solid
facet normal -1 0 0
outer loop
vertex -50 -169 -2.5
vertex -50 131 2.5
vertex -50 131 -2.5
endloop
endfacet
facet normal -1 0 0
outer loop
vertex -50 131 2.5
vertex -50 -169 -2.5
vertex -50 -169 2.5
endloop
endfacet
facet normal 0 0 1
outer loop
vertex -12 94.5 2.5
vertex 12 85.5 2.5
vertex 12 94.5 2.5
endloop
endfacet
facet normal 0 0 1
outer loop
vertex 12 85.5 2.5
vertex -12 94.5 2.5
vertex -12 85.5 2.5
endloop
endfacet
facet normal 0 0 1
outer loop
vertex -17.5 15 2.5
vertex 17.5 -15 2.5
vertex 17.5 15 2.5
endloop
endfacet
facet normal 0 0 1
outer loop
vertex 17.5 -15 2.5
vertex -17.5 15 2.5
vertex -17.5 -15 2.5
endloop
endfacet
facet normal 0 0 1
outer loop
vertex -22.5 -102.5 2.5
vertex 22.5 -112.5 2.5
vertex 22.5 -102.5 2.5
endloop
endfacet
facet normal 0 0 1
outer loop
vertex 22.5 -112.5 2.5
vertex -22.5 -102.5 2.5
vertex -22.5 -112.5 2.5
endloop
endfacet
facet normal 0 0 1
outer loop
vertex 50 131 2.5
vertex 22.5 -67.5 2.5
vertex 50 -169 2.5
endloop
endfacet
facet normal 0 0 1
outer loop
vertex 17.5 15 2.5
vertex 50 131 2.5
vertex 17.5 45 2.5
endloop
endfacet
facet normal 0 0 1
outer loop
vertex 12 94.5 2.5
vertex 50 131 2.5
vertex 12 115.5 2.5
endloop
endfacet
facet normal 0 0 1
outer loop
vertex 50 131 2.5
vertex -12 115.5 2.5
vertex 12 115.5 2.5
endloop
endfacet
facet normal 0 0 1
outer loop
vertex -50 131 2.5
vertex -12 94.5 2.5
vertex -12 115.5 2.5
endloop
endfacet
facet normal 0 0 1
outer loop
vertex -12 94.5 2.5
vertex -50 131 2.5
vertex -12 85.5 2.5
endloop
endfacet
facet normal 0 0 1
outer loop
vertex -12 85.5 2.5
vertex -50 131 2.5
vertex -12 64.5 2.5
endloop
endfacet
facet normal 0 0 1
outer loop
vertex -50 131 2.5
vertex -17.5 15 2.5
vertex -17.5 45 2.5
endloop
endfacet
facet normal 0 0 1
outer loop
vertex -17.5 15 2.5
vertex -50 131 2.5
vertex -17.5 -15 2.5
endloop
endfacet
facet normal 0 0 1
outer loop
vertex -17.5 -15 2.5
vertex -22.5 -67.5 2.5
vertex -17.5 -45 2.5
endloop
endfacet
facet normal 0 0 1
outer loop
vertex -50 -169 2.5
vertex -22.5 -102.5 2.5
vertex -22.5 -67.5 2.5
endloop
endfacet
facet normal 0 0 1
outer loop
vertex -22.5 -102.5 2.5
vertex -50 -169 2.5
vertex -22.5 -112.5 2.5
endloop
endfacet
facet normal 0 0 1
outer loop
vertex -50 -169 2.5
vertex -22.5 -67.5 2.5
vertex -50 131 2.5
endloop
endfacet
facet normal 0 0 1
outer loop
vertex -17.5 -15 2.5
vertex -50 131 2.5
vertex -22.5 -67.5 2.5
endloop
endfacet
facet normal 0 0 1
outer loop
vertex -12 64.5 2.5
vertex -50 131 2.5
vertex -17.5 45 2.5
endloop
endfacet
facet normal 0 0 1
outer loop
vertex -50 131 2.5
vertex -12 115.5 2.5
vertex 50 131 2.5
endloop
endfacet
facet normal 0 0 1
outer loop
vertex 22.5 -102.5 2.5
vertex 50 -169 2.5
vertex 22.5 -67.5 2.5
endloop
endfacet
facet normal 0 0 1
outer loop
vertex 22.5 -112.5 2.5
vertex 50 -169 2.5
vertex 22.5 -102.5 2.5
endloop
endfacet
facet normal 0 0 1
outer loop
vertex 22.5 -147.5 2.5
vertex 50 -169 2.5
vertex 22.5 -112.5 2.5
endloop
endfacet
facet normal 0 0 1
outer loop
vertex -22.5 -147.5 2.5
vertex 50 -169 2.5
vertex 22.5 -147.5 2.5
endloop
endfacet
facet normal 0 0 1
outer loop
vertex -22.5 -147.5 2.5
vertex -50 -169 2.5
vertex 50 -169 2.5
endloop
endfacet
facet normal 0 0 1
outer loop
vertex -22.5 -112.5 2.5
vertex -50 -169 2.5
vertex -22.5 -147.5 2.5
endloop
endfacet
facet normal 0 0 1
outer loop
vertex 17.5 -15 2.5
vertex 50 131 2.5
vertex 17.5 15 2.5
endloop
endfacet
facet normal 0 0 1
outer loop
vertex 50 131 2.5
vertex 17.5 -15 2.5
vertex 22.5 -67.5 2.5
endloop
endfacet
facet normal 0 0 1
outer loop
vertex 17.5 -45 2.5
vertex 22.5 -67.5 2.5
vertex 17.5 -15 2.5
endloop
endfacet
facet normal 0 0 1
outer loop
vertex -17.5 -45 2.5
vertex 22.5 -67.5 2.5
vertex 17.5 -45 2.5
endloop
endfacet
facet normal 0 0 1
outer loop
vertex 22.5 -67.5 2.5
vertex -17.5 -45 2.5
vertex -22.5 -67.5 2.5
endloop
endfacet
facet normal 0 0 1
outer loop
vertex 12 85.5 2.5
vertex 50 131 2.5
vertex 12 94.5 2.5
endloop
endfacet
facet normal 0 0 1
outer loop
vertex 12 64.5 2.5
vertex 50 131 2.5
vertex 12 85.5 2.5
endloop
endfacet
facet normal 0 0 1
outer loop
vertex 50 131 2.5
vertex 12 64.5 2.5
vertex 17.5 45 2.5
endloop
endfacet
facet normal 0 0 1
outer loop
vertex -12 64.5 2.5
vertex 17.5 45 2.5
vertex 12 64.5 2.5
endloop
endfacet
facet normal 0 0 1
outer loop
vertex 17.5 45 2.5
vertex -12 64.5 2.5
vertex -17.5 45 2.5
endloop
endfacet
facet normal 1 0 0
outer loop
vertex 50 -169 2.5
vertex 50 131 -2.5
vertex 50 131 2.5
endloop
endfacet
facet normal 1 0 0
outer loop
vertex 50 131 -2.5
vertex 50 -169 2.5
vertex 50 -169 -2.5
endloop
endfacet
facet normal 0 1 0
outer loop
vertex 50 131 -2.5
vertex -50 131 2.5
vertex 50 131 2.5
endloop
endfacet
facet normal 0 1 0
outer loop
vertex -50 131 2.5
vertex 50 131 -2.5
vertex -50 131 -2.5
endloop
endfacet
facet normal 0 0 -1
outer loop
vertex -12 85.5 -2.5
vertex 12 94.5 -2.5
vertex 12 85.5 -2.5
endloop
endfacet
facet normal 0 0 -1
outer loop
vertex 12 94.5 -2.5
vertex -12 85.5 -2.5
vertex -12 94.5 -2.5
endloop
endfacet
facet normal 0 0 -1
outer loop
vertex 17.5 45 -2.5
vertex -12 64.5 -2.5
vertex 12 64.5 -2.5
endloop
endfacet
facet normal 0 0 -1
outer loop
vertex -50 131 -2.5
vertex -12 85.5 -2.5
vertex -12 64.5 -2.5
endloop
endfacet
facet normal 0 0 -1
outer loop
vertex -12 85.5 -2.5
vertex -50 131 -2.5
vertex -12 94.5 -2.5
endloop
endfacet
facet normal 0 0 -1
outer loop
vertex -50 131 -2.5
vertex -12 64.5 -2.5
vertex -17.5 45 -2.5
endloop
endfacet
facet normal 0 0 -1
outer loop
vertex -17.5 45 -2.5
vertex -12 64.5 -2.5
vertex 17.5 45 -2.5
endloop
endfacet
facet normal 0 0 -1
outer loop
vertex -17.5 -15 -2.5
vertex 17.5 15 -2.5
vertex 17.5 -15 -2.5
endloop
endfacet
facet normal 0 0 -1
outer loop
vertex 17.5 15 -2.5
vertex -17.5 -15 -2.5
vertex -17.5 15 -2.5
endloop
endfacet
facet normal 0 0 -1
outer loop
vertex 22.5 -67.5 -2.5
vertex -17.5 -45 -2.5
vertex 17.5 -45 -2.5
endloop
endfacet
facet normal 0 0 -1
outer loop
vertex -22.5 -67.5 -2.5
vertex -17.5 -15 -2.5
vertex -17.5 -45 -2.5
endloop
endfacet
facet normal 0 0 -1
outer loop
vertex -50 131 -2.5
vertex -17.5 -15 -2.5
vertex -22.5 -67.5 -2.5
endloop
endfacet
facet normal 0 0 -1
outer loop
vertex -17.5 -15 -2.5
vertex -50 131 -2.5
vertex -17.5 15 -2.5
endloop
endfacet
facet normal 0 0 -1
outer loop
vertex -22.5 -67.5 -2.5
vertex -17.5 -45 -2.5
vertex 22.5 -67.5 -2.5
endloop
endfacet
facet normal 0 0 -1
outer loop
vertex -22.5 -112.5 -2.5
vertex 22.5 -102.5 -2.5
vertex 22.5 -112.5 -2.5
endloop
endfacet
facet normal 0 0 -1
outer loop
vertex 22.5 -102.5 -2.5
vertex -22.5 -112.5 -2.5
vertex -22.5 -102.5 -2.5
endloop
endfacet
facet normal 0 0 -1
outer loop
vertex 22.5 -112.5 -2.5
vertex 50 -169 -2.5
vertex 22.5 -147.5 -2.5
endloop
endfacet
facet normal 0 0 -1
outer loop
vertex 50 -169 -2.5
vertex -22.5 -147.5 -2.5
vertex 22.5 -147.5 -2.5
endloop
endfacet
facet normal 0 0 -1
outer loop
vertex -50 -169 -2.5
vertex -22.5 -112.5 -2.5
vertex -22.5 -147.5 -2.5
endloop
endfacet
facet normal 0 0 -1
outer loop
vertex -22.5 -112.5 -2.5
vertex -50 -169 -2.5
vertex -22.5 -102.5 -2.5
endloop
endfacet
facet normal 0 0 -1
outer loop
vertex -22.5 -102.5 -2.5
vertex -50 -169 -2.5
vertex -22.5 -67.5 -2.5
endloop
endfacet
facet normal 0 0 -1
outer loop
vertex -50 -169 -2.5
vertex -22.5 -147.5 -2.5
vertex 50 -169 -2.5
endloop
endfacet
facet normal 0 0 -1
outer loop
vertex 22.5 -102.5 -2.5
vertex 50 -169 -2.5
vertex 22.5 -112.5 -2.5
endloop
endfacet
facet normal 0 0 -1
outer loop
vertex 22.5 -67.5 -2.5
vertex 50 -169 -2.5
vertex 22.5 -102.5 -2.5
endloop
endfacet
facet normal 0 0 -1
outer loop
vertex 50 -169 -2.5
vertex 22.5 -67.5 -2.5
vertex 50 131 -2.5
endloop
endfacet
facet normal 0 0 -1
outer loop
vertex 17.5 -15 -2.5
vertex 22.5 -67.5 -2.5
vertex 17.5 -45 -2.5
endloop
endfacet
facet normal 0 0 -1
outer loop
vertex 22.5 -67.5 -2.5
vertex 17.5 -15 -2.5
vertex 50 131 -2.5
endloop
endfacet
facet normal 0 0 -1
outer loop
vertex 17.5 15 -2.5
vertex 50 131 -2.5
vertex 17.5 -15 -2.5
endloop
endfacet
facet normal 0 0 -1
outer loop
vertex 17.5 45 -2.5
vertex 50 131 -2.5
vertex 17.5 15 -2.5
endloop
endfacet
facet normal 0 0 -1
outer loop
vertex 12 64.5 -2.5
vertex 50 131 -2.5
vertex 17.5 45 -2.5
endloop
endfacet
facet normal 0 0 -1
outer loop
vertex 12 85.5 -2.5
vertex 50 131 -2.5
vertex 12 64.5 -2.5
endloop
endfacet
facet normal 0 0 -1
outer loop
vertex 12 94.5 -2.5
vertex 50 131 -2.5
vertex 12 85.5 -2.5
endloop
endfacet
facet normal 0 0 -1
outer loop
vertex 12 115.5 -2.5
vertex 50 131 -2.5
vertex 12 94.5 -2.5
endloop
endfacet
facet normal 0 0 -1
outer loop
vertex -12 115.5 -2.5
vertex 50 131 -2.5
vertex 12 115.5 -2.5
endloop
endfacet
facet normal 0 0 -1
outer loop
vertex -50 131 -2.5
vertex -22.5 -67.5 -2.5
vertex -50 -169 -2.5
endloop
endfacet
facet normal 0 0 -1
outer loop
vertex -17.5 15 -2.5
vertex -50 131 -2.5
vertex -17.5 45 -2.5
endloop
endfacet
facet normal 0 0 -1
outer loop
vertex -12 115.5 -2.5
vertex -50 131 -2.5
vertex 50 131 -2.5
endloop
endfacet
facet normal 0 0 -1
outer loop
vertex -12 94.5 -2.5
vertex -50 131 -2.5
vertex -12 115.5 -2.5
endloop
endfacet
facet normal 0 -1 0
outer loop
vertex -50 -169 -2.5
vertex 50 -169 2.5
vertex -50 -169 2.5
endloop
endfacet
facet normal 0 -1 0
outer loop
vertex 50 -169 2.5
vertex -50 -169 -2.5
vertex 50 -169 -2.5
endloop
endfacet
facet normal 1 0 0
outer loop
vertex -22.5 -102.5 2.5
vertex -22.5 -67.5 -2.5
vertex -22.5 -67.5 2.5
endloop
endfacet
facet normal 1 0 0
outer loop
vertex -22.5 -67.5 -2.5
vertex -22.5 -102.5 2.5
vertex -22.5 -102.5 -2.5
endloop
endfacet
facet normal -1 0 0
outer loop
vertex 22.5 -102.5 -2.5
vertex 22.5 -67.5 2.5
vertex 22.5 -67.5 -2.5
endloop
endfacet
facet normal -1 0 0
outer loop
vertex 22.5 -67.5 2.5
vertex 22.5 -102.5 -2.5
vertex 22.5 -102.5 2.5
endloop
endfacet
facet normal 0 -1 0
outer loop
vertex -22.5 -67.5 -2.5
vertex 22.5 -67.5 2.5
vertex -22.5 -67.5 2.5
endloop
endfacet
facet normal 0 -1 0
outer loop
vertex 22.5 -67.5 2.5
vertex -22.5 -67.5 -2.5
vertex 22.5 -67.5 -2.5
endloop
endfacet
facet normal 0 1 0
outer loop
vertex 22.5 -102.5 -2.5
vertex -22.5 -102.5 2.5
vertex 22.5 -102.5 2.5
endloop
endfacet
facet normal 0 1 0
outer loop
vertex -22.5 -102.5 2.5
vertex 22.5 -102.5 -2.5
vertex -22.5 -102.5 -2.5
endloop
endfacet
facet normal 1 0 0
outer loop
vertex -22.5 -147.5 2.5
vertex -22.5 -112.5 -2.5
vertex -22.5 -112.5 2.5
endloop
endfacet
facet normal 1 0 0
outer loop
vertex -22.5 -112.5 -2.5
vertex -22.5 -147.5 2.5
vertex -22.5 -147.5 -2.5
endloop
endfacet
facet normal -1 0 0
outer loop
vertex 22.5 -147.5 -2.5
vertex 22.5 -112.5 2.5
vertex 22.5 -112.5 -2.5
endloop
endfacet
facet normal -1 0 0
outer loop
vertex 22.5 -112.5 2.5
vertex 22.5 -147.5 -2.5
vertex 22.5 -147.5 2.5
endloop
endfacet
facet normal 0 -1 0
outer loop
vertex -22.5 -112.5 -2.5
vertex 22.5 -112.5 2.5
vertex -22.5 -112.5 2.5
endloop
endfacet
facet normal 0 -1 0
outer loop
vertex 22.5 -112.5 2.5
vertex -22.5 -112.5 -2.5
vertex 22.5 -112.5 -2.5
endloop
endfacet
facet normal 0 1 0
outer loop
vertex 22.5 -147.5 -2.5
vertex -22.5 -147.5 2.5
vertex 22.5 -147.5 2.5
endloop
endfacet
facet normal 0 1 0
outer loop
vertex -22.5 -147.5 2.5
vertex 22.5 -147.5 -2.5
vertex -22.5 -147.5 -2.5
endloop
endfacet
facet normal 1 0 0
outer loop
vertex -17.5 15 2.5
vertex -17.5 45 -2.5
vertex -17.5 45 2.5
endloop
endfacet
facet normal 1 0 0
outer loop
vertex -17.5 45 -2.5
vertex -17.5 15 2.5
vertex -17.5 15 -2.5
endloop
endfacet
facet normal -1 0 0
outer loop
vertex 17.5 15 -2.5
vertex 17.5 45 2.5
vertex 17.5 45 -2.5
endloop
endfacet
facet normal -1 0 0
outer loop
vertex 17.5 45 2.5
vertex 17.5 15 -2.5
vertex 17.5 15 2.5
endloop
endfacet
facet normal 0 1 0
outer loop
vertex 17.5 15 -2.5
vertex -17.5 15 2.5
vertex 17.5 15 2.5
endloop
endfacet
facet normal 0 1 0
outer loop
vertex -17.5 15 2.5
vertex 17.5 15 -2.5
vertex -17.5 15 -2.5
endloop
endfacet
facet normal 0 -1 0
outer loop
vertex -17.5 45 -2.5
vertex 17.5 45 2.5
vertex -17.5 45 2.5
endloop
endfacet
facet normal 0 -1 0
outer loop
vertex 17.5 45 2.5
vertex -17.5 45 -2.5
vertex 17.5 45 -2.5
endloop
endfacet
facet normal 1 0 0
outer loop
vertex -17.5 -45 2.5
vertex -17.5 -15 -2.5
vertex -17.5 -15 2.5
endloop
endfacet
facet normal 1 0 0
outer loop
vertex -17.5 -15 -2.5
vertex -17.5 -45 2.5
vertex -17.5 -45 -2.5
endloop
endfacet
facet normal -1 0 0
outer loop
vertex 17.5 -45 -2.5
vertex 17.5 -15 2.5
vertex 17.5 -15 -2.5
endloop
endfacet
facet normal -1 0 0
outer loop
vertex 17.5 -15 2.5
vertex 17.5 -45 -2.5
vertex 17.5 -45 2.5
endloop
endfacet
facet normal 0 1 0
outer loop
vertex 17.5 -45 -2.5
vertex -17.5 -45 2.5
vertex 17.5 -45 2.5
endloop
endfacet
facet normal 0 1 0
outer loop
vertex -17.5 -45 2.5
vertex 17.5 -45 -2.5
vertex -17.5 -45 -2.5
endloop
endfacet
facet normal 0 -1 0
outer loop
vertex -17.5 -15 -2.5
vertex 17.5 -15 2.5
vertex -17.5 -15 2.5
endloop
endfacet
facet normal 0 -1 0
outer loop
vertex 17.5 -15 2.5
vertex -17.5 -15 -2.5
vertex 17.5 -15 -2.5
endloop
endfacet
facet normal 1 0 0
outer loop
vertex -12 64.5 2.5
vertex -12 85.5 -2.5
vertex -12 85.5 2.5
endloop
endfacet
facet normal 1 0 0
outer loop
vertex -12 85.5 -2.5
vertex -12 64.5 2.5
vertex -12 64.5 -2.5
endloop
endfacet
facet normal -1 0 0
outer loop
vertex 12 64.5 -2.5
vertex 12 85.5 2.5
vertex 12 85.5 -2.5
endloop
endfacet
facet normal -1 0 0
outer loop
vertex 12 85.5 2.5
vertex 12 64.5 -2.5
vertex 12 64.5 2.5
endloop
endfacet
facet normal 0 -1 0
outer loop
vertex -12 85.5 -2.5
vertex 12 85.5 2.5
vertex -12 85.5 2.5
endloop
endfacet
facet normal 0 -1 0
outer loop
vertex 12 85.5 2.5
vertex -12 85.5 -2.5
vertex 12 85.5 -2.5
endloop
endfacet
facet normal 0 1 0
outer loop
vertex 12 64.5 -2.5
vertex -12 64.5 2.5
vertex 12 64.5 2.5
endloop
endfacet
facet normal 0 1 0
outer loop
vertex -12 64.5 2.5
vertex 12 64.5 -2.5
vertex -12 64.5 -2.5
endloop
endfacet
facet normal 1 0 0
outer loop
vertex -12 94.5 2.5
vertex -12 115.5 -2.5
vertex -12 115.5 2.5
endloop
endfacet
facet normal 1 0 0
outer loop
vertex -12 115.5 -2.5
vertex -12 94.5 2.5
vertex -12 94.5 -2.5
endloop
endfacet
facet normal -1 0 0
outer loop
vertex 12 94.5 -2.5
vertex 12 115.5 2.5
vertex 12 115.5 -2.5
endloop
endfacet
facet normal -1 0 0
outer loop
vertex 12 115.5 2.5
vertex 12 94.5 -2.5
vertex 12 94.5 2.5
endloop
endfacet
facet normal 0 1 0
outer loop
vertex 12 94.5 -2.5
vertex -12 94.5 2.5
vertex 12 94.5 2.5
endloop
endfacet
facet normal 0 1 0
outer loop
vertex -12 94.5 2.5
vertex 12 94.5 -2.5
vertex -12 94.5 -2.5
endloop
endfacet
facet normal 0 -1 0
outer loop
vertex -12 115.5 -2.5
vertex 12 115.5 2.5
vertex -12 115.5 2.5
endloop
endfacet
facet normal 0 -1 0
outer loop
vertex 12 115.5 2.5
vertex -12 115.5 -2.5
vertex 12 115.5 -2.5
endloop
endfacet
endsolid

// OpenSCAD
difference(){
translate([0,-19,0])
cube([100, 300, 5], center=true);

//540s
translate([0,-85,0])
cube([45, 35, 6], center=true);

translate([0,-130,0])
cube([45, 35, 6], center=true);

//430s
translate([0,30,0])
cube([35, 30, 6], center=true);

translate([0,-30,0])
cube([35, 30, 6], center=true);

//330s
translate([0,75,0])
cube([24, 21, 6], center=true);

translate([0,105,0])
cube([24, 21, 6], center=true);

}
